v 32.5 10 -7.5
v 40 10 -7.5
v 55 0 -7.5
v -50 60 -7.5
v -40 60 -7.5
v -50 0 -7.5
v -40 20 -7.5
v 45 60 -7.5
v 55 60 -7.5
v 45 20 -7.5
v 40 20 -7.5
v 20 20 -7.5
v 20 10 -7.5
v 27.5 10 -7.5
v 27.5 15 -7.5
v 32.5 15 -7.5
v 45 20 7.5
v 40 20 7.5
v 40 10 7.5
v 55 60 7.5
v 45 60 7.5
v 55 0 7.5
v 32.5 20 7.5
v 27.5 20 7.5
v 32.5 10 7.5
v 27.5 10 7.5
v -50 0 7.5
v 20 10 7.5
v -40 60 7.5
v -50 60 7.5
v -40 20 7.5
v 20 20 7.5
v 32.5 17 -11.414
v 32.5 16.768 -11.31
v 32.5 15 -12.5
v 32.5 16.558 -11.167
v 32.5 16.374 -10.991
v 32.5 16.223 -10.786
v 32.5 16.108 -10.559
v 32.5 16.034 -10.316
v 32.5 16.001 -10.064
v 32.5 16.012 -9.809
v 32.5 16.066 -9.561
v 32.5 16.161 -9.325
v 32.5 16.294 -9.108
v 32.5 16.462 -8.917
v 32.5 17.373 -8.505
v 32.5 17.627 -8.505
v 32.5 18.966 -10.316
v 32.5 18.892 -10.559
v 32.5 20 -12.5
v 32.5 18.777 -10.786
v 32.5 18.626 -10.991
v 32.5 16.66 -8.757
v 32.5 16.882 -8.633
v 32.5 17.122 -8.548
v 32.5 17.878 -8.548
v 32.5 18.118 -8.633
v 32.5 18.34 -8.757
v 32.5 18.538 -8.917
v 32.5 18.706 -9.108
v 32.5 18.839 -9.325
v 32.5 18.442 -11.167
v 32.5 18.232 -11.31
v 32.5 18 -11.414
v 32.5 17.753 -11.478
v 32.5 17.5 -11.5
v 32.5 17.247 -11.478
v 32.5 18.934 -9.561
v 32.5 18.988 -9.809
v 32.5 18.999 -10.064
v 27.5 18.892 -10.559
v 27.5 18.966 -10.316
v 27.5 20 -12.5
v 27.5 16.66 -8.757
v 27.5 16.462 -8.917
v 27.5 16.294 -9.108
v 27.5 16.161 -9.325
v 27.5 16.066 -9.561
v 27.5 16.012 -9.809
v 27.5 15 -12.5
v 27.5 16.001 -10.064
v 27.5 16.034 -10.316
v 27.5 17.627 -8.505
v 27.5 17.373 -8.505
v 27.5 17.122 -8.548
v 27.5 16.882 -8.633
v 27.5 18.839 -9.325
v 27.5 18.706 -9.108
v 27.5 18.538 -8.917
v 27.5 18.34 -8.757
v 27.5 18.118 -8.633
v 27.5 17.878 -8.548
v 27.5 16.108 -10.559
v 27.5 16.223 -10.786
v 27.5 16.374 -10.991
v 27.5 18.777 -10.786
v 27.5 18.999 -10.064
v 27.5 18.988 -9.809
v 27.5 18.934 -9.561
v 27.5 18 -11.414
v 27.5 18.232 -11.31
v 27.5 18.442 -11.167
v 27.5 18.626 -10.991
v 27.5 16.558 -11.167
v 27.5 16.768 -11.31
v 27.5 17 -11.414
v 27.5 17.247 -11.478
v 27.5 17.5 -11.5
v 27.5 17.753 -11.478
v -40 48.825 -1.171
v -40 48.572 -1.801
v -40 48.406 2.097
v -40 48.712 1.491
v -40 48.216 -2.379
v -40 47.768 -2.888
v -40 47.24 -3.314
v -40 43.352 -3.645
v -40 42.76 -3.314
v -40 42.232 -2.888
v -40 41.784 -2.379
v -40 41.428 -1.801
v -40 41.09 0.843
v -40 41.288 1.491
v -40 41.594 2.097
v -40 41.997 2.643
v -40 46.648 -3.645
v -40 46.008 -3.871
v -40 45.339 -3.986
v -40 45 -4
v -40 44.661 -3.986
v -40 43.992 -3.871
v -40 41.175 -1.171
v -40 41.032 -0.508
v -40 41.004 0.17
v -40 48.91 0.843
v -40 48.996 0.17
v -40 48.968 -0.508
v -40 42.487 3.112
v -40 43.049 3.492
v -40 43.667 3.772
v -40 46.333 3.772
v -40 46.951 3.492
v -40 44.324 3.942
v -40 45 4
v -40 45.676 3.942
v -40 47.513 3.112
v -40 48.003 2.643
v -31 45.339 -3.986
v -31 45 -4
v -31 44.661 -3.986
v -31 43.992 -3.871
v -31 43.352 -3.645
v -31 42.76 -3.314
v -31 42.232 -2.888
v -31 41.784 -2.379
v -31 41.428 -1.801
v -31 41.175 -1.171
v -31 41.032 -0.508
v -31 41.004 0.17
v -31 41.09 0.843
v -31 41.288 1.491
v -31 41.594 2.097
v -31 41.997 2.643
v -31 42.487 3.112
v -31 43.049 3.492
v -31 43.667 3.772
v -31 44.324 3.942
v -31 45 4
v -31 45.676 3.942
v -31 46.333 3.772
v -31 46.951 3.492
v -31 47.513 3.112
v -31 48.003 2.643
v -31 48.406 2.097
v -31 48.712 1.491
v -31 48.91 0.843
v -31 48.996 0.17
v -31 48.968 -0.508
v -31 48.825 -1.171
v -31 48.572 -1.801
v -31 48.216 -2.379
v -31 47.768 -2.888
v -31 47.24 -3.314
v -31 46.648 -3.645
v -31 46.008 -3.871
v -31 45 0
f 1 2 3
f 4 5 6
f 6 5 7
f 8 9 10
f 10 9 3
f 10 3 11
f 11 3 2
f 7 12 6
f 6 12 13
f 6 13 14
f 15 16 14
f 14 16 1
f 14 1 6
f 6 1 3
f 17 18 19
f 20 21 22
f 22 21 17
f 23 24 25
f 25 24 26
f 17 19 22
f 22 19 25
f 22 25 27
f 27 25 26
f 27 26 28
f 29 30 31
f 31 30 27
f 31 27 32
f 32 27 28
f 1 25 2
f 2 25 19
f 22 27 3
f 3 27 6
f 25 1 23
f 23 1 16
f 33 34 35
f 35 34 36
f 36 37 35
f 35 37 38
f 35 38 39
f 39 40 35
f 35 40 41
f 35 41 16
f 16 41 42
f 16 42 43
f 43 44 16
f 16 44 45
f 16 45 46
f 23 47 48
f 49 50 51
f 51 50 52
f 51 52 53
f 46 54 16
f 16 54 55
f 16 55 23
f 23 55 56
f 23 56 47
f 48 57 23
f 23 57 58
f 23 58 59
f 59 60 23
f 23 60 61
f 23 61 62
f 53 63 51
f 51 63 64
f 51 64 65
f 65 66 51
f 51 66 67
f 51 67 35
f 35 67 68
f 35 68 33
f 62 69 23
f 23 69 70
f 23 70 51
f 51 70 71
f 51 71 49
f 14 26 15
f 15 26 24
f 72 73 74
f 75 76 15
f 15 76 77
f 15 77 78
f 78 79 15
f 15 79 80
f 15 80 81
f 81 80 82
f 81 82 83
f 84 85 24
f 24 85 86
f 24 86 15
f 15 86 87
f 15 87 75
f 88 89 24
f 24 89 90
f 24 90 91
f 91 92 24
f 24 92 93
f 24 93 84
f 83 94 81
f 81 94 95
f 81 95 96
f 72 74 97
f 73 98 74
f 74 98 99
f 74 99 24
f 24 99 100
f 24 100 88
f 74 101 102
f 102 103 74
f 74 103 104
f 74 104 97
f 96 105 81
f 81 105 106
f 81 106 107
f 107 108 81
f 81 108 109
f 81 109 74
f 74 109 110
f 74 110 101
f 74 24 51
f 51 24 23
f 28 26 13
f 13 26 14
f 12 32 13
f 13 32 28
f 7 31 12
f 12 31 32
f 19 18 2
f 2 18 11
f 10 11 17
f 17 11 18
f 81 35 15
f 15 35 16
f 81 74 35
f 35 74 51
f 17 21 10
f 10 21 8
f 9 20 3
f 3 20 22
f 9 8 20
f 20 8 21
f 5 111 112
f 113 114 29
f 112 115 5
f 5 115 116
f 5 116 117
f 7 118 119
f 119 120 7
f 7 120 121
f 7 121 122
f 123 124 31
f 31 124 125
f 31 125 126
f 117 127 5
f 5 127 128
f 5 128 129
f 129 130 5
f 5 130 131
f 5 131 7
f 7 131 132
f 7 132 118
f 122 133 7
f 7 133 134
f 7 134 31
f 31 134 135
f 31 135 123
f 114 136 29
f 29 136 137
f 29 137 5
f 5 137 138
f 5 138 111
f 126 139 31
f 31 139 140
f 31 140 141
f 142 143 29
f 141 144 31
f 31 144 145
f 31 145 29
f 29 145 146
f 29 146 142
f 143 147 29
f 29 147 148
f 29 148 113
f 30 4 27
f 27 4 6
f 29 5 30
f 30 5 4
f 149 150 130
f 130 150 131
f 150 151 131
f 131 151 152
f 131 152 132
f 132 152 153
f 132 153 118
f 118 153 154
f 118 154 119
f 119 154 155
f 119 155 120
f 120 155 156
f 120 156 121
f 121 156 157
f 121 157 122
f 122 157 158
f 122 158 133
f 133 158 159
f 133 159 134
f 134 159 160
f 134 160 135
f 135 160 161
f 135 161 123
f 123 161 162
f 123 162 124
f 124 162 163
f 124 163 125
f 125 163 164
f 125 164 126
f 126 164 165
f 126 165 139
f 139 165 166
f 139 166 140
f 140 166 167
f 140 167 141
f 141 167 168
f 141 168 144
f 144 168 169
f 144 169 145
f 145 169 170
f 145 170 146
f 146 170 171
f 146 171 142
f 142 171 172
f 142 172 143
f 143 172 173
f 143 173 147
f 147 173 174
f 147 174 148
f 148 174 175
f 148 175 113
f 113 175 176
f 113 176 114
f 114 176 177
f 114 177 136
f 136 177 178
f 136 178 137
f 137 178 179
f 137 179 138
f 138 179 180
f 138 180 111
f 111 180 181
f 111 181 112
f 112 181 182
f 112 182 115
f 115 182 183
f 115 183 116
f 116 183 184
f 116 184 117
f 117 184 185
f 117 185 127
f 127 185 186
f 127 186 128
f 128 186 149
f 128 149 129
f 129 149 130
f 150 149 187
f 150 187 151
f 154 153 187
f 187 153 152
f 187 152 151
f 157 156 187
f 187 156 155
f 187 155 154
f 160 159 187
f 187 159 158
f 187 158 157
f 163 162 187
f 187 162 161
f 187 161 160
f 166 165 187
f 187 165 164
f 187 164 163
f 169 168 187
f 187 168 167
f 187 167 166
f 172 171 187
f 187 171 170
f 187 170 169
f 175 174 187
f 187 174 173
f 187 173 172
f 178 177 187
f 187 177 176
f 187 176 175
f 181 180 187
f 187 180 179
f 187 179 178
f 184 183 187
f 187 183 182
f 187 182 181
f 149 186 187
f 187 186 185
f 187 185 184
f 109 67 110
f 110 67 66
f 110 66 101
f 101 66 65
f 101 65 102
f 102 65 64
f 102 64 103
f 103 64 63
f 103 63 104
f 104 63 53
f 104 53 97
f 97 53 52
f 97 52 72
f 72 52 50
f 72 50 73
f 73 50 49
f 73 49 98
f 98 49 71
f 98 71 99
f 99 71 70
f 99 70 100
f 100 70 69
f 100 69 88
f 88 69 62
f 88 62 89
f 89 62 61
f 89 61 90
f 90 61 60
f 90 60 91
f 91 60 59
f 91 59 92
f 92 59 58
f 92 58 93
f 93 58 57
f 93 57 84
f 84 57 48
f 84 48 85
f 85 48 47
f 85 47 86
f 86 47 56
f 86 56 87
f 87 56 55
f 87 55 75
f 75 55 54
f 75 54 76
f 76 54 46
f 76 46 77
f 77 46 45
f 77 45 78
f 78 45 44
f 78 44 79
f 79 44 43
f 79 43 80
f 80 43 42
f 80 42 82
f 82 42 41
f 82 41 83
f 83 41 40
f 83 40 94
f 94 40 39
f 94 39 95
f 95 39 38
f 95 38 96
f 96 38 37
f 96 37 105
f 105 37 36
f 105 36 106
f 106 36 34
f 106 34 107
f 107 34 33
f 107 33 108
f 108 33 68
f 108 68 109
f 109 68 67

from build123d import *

# Parameters (mm, degrees)
SKETCH1_3_W           = 7.5
SKETCH1_3_H           = 15
BOSS_EXTRUDE2_DEPTH   = 10
BOSS_EXTRUDE2_2_DEPTH = 10
SKETCH1_W             = 5
SKETCH1_H             = 15
SKETCH1_W_2           = 60
BOSS_EXTRUDE3_DEPTH   = 20
SKETCH2_W             = 5
SKETCH2_H             = 5
BOSS_EXTRUDE5_DEPTH   = 5
SKETCH1_9_W           = 10
SKETCH1_9_H           = 15
BOSS_EXTRUDE6_DEPTH   = 60
SKETCH4_R             = 4
BOSS_EXTRUDE7_DEPTH   = 9
SKETCH5_R             = 1.5
CUT_EXTRUDE1_DEPTH    = 5


with BuildPart() as part:
    # Sketch1<3> → Boss-Extrude2 (new body)
    with BuildSketch(Plane(origin=(0, 0, 0), x_dir=(1, 0, 0), z_dir=(0, 1, 0))):
        with Locations((36.25, 0)):
            Rectangle(SKETCH1_3_W, SKETCH1_3_H)
    extrude(amount=BOSS_EXTRUDE2_DEPTH)



with BuildPart() as body_2:
    # Sketch1<3> → Boss-Extrude2 2 (new body)
    with BuildSketch(Plane(origin=(0, 0, 0), x_dir=(1, 0, 0), z_dir=(0, 1, 0))):
        with Locations((23.75, 0)):
            Rectangle(SKETCH1_3_W, SKETCH1_3_H)
    extrude(amount=BOSS_EXTRUDE2_2_DEPTH)


with BuildPart() as part_1:
    add(part.part)

    add(body_2.part)  # Boss-Extrude3 merges body 2
    # Sketch1 → Boss-Extrude3 (add)
    with BuildSketch(Plane(origin=(0, 0, 0), x_dir=(1, 0, 0), z_dir=(0, 1, 0))):
        with Locations((30, 0)):
            Rectangle(SKETCH1_W, SKETCH1_H)
        with Locations((-10, 0)):
            Rectangle(SKETCH1_W_2, SKETCH1_H)
        with Locations((42.5, 0)):
            Rectangle(SKETCH1_W, SKETCH1_H)
    extrude(amount=BOSS_EXTRUDE3_DEPTH)

    # Sketch2 → Boss-Extrude5 (add)
    with BuildSketch(Plane(origin=(0, 0, -7.5), x_dir=(-1, 0, 0), z_dir=(0, 0, -1))):
        with Locations((-30, 17.5)):
            Rectangle(SKETCH2_W, SKETCH2_H)
    extrude(amount=BOSS_EXTRUDE5_DEPTH)

    # Sketch1<9> → Boss-Extrude6 (add)
    with BuildSketch(Plane(origin=(0, 0, 0), x_dir=(1, 0, 0), z_dir=(0, 1, 0))):
        with Locations((50, 0)):
            Rectangle(SKETCH1_9_W, SKETCH1_9_H)
        with Locations((-45, 0)):
            Rectangle(SKETCH1_9_W, SKETCH1_9_H)
    extrude(amount=BOSS_EXTRUDE6_DEPTH)

    # Sketch4 → Boss-Extrude7 (add)
    with BuildSketch(Plane(origin=(-40, 0, 0), x_dir=(0, 0, -1), z_dir=(1, 0, 0))):
        with Locations((0, 45)):
            Circle(SKETCH4_R)
    extrude(amount=BOSS_EXTRUDE7_DEPTH)

    # Sketch5 → Cut-Extrude1 (cut)
    with BuildSketch(Plane(origin=(32.5, 0, 0), x_dir=(0, 0, -1), z_dir=(1, 0, 0))):
        with Locations((10, 17.5)):
            Circle(SKETCH5_R)
    extrude(amount=-CUT_EXTRUDE1_DEPTH, mode=Mode.SUBTRACT)


solid = part_1.part
